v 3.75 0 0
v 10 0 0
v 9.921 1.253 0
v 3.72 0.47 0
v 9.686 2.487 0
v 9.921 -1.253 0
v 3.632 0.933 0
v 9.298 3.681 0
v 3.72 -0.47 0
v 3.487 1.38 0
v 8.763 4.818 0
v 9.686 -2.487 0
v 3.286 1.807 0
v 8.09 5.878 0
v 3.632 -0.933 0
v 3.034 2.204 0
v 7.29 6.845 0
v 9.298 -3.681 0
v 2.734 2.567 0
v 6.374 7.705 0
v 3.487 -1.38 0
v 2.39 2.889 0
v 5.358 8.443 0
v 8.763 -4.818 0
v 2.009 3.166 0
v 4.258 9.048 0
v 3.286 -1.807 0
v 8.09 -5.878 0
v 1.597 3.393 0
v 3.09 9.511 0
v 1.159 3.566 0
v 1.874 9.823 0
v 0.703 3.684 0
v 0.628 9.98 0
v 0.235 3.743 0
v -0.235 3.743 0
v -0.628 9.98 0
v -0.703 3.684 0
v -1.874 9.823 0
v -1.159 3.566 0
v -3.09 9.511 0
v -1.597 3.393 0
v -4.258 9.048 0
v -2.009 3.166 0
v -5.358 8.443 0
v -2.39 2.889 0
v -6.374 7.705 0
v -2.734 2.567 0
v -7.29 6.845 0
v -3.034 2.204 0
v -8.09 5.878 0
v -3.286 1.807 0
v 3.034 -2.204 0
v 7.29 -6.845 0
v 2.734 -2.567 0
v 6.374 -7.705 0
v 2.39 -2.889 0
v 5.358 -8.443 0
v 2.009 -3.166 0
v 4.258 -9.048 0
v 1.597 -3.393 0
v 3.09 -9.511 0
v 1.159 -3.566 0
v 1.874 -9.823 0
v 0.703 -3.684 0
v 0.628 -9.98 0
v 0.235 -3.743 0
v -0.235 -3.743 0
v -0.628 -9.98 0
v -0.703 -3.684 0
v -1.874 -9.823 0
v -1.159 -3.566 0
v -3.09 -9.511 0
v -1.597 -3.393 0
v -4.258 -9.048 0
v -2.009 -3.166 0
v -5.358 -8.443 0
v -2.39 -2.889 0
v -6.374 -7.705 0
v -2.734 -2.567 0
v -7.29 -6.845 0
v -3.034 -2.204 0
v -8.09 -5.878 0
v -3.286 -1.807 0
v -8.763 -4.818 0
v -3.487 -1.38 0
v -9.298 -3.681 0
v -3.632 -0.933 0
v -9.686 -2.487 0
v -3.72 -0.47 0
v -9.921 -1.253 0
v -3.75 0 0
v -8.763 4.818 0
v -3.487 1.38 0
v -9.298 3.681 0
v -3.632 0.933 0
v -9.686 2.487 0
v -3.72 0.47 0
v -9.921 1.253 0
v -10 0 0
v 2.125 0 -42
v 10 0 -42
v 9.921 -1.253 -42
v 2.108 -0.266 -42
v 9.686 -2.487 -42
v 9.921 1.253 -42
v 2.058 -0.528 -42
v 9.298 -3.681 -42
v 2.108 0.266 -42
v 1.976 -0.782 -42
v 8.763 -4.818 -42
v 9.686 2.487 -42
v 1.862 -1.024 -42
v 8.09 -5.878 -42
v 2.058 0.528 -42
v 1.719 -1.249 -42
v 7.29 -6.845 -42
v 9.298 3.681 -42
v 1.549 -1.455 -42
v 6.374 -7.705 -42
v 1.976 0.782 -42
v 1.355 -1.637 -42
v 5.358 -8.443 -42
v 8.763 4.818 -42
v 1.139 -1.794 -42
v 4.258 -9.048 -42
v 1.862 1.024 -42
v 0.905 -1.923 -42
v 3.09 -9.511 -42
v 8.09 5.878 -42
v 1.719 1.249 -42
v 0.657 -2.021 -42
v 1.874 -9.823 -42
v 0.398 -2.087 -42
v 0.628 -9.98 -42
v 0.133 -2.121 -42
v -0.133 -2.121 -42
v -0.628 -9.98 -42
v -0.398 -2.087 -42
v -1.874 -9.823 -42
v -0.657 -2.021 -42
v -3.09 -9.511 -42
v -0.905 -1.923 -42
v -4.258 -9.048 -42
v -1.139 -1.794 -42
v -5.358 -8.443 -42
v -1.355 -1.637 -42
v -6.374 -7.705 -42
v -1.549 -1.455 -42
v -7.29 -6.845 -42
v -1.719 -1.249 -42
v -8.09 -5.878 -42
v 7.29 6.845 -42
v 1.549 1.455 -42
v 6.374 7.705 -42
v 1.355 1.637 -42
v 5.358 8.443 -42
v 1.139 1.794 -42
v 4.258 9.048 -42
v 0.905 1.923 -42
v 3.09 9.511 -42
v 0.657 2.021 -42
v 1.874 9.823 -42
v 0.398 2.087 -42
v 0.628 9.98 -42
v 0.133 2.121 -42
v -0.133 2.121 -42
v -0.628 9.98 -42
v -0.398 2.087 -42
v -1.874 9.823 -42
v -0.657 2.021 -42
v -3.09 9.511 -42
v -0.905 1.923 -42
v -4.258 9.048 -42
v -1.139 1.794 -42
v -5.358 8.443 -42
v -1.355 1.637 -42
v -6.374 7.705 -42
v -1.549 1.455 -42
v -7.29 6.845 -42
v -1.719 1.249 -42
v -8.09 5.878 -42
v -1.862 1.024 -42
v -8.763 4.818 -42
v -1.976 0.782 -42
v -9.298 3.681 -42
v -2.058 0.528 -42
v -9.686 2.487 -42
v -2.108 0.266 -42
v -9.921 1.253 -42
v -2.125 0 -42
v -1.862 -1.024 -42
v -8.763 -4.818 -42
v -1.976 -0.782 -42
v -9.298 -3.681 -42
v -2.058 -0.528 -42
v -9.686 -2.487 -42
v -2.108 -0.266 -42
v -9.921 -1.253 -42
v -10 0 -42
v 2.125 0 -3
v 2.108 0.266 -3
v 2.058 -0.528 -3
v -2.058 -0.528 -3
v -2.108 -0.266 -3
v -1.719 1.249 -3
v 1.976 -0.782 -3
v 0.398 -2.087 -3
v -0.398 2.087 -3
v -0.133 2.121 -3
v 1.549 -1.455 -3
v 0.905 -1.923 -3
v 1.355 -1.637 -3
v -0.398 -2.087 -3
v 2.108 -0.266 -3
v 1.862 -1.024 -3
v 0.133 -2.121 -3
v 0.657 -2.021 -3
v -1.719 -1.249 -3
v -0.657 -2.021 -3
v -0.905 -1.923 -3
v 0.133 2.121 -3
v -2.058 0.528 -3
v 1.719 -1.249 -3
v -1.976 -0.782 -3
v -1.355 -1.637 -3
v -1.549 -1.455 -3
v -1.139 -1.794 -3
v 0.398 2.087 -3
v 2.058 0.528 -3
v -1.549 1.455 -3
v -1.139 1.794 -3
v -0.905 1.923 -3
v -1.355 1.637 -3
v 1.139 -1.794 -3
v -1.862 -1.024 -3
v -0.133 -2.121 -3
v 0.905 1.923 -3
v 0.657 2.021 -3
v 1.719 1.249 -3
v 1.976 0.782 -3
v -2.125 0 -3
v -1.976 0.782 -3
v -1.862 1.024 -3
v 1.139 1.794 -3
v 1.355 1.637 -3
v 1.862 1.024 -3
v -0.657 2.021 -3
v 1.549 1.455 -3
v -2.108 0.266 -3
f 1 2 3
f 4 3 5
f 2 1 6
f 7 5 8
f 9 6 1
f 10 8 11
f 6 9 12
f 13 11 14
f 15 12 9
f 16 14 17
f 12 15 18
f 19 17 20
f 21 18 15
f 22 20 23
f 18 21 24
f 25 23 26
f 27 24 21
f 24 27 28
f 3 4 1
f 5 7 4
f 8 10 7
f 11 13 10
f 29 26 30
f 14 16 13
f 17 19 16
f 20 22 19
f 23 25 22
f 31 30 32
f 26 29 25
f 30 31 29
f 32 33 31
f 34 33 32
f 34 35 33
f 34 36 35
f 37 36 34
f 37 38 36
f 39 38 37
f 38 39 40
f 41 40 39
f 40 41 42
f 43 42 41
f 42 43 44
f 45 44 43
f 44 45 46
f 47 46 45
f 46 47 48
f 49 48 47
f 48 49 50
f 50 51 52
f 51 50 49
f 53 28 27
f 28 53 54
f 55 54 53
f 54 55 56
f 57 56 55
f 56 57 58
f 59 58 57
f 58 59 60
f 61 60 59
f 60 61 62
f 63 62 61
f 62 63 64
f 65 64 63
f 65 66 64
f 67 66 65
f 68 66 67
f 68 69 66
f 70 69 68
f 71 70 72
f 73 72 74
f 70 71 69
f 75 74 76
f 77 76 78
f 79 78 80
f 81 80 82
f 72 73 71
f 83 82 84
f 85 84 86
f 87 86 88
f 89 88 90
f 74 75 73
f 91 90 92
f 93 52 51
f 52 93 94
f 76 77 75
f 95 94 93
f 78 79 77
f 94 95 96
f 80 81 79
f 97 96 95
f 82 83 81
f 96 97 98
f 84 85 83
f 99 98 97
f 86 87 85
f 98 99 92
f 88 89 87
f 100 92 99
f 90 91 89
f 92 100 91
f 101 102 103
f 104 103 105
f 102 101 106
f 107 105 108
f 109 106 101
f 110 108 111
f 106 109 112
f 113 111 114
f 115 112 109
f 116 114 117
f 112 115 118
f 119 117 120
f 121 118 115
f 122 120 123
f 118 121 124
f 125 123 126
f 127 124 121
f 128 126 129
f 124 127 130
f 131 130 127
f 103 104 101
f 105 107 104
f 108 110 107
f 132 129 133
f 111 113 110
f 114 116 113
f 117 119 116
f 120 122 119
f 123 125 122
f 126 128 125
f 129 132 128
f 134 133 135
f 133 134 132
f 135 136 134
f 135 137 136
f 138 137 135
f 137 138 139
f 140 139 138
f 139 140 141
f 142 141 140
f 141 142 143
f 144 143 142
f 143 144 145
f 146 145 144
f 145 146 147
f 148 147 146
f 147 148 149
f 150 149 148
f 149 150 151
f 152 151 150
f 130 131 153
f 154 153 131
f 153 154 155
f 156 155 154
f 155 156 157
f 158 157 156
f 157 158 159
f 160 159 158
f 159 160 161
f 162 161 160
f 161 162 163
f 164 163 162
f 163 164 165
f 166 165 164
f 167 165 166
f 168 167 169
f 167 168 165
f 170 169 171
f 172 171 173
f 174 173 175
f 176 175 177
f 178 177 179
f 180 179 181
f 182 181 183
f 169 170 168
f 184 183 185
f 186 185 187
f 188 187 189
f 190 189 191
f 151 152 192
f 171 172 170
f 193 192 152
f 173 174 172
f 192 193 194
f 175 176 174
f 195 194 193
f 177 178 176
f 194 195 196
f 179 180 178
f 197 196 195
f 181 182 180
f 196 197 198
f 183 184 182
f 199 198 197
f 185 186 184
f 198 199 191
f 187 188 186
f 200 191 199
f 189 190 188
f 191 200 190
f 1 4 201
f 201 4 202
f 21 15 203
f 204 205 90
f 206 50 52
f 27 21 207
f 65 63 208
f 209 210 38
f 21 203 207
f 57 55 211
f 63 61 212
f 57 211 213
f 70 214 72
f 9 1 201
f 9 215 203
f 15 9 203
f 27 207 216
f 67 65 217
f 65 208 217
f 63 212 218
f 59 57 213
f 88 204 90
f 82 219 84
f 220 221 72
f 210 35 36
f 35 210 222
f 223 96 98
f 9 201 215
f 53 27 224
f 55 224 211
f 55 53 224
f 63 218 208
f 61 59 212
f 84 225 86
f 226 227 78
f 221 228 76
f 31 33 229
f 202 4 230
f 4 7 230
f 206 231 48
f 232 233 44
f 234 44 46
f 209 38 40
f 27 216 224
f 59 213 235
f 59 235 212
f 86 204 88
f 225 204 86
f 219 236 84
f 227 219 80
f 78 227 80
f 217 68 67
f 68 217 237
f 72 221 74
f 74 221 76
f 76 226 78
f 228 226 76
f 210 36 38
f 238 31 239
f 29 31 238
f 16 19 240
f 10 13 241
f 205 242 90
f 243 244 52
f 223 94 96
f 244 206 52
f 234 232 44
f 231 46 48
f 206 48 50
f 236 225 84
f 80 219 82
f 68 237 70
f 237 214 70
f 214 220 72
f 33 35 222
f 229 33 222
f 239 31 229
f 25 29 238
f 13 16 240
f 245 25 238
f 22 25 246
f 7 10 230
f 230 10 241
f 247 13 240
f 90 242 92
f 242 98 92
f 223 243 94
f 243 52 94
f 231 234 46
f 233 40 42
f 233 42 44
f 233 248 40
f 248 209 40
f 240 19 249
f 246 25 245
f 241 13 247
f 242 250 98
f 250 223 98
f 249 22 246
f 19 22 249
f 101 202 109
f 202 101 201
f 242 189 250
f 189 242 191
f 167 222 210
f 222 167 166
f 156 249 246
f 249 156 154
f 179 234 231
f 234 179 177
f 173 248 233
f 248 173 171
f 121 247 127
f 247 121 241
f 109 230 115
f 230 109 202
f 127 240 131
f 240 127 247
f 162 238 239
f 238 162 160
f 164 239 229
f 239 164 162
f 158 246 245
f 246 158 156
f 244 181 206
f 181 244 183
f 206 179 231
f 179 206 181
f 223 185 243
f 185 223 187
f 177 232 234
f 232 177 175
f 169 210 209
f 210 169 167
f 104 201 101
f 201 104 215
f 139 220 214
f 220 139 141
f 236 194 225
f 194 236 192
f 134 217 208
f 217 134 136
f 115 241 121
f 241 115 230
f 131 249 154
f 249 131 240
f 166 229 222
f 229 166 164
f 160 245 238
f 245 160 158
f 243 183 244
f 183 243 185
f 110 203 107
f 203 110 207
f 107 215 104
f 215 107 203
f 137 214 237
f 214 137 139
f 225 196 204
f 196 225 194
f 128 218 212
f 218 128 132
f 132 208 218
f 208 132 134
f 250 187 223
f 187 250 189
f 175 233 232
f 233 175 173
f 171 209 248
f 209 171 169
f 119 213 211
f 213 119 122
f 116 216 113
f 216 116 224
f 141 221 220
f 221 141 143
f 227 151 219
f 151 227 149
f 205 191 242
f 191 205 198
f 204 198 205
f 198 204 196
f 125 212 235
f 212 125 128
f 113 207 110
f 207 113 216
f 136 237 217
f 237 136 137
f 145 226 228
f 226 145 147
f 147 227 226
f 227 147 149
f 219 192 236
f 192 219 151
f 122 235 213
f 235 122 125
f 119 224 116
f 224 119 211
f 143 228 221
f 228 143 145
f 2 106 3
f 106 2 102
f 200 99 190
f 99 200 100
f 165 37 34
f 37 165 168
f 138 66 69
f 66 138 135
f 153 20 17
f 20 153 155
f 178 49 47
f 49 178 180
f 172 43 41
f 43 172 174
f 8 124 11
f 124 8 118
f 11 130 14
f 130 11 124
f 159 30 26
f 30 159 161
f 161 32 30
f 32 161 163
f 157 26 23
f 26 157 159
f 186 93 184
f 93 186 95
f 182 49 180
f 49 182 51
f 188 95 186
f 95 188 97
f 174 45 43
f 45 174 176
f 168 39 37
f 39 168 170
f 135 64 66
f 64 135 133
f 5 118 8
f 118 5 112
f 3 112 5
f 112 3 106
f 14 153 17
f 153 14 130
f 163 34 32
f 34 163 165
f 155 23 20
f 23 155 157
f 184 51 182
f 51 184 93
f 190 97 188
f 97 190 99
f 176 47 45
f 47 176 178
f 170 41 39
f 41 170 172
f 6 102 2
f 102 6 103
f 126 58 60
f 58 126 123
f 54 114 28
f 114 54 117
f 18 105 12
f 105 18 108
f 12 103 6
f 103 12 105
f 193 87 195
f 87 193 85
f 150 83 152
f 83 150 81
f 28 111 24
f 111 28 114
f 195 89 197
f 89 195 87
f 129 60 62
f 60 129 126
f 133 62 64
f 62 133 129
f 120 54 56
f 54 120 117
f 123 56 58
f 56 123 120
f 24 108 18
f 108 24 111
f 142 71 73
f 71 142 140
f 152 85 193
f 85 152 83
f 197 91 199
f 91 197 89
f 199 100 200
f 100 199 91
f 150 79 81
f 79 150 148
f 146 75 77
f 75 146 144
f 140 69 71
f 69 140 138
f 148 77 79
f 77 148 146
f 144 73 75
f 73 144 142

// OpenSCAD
$fn = 50;


difference() {
	union() {
		translate(v = [0, 0, -42.0000000000]) {
			cylinder(h = 42, r = 10.0000000000);
		}
		cylinder(h = 0, r = 19.0000000000);
	}
	union() {
		translate(v = [0, 0, 0]) {
			rotate(a = [0, 0, 0]) {
				difference() {
					union() {
						#translate(v = [0, 0, -42.0000000000]) {
							cylinder(h = 42, r = 2.0000000000);
						}
						#translate(v = [0, 0, -3]) {
							cylinder(h = 3, r1 = 2.1250000000, r2 = 3.7500000000);
						}
						#translate(v = [0, 0, -42.0000000000]) {
							cylinder(h = 42, r = 2.1250000000);
						}
						#translate(v = [0, 0, -42.0000000000]) {
							cylinder(h = 42, r = 2.0000000000);
						}
					}
					union();
				}
			}
		}
	}
}
